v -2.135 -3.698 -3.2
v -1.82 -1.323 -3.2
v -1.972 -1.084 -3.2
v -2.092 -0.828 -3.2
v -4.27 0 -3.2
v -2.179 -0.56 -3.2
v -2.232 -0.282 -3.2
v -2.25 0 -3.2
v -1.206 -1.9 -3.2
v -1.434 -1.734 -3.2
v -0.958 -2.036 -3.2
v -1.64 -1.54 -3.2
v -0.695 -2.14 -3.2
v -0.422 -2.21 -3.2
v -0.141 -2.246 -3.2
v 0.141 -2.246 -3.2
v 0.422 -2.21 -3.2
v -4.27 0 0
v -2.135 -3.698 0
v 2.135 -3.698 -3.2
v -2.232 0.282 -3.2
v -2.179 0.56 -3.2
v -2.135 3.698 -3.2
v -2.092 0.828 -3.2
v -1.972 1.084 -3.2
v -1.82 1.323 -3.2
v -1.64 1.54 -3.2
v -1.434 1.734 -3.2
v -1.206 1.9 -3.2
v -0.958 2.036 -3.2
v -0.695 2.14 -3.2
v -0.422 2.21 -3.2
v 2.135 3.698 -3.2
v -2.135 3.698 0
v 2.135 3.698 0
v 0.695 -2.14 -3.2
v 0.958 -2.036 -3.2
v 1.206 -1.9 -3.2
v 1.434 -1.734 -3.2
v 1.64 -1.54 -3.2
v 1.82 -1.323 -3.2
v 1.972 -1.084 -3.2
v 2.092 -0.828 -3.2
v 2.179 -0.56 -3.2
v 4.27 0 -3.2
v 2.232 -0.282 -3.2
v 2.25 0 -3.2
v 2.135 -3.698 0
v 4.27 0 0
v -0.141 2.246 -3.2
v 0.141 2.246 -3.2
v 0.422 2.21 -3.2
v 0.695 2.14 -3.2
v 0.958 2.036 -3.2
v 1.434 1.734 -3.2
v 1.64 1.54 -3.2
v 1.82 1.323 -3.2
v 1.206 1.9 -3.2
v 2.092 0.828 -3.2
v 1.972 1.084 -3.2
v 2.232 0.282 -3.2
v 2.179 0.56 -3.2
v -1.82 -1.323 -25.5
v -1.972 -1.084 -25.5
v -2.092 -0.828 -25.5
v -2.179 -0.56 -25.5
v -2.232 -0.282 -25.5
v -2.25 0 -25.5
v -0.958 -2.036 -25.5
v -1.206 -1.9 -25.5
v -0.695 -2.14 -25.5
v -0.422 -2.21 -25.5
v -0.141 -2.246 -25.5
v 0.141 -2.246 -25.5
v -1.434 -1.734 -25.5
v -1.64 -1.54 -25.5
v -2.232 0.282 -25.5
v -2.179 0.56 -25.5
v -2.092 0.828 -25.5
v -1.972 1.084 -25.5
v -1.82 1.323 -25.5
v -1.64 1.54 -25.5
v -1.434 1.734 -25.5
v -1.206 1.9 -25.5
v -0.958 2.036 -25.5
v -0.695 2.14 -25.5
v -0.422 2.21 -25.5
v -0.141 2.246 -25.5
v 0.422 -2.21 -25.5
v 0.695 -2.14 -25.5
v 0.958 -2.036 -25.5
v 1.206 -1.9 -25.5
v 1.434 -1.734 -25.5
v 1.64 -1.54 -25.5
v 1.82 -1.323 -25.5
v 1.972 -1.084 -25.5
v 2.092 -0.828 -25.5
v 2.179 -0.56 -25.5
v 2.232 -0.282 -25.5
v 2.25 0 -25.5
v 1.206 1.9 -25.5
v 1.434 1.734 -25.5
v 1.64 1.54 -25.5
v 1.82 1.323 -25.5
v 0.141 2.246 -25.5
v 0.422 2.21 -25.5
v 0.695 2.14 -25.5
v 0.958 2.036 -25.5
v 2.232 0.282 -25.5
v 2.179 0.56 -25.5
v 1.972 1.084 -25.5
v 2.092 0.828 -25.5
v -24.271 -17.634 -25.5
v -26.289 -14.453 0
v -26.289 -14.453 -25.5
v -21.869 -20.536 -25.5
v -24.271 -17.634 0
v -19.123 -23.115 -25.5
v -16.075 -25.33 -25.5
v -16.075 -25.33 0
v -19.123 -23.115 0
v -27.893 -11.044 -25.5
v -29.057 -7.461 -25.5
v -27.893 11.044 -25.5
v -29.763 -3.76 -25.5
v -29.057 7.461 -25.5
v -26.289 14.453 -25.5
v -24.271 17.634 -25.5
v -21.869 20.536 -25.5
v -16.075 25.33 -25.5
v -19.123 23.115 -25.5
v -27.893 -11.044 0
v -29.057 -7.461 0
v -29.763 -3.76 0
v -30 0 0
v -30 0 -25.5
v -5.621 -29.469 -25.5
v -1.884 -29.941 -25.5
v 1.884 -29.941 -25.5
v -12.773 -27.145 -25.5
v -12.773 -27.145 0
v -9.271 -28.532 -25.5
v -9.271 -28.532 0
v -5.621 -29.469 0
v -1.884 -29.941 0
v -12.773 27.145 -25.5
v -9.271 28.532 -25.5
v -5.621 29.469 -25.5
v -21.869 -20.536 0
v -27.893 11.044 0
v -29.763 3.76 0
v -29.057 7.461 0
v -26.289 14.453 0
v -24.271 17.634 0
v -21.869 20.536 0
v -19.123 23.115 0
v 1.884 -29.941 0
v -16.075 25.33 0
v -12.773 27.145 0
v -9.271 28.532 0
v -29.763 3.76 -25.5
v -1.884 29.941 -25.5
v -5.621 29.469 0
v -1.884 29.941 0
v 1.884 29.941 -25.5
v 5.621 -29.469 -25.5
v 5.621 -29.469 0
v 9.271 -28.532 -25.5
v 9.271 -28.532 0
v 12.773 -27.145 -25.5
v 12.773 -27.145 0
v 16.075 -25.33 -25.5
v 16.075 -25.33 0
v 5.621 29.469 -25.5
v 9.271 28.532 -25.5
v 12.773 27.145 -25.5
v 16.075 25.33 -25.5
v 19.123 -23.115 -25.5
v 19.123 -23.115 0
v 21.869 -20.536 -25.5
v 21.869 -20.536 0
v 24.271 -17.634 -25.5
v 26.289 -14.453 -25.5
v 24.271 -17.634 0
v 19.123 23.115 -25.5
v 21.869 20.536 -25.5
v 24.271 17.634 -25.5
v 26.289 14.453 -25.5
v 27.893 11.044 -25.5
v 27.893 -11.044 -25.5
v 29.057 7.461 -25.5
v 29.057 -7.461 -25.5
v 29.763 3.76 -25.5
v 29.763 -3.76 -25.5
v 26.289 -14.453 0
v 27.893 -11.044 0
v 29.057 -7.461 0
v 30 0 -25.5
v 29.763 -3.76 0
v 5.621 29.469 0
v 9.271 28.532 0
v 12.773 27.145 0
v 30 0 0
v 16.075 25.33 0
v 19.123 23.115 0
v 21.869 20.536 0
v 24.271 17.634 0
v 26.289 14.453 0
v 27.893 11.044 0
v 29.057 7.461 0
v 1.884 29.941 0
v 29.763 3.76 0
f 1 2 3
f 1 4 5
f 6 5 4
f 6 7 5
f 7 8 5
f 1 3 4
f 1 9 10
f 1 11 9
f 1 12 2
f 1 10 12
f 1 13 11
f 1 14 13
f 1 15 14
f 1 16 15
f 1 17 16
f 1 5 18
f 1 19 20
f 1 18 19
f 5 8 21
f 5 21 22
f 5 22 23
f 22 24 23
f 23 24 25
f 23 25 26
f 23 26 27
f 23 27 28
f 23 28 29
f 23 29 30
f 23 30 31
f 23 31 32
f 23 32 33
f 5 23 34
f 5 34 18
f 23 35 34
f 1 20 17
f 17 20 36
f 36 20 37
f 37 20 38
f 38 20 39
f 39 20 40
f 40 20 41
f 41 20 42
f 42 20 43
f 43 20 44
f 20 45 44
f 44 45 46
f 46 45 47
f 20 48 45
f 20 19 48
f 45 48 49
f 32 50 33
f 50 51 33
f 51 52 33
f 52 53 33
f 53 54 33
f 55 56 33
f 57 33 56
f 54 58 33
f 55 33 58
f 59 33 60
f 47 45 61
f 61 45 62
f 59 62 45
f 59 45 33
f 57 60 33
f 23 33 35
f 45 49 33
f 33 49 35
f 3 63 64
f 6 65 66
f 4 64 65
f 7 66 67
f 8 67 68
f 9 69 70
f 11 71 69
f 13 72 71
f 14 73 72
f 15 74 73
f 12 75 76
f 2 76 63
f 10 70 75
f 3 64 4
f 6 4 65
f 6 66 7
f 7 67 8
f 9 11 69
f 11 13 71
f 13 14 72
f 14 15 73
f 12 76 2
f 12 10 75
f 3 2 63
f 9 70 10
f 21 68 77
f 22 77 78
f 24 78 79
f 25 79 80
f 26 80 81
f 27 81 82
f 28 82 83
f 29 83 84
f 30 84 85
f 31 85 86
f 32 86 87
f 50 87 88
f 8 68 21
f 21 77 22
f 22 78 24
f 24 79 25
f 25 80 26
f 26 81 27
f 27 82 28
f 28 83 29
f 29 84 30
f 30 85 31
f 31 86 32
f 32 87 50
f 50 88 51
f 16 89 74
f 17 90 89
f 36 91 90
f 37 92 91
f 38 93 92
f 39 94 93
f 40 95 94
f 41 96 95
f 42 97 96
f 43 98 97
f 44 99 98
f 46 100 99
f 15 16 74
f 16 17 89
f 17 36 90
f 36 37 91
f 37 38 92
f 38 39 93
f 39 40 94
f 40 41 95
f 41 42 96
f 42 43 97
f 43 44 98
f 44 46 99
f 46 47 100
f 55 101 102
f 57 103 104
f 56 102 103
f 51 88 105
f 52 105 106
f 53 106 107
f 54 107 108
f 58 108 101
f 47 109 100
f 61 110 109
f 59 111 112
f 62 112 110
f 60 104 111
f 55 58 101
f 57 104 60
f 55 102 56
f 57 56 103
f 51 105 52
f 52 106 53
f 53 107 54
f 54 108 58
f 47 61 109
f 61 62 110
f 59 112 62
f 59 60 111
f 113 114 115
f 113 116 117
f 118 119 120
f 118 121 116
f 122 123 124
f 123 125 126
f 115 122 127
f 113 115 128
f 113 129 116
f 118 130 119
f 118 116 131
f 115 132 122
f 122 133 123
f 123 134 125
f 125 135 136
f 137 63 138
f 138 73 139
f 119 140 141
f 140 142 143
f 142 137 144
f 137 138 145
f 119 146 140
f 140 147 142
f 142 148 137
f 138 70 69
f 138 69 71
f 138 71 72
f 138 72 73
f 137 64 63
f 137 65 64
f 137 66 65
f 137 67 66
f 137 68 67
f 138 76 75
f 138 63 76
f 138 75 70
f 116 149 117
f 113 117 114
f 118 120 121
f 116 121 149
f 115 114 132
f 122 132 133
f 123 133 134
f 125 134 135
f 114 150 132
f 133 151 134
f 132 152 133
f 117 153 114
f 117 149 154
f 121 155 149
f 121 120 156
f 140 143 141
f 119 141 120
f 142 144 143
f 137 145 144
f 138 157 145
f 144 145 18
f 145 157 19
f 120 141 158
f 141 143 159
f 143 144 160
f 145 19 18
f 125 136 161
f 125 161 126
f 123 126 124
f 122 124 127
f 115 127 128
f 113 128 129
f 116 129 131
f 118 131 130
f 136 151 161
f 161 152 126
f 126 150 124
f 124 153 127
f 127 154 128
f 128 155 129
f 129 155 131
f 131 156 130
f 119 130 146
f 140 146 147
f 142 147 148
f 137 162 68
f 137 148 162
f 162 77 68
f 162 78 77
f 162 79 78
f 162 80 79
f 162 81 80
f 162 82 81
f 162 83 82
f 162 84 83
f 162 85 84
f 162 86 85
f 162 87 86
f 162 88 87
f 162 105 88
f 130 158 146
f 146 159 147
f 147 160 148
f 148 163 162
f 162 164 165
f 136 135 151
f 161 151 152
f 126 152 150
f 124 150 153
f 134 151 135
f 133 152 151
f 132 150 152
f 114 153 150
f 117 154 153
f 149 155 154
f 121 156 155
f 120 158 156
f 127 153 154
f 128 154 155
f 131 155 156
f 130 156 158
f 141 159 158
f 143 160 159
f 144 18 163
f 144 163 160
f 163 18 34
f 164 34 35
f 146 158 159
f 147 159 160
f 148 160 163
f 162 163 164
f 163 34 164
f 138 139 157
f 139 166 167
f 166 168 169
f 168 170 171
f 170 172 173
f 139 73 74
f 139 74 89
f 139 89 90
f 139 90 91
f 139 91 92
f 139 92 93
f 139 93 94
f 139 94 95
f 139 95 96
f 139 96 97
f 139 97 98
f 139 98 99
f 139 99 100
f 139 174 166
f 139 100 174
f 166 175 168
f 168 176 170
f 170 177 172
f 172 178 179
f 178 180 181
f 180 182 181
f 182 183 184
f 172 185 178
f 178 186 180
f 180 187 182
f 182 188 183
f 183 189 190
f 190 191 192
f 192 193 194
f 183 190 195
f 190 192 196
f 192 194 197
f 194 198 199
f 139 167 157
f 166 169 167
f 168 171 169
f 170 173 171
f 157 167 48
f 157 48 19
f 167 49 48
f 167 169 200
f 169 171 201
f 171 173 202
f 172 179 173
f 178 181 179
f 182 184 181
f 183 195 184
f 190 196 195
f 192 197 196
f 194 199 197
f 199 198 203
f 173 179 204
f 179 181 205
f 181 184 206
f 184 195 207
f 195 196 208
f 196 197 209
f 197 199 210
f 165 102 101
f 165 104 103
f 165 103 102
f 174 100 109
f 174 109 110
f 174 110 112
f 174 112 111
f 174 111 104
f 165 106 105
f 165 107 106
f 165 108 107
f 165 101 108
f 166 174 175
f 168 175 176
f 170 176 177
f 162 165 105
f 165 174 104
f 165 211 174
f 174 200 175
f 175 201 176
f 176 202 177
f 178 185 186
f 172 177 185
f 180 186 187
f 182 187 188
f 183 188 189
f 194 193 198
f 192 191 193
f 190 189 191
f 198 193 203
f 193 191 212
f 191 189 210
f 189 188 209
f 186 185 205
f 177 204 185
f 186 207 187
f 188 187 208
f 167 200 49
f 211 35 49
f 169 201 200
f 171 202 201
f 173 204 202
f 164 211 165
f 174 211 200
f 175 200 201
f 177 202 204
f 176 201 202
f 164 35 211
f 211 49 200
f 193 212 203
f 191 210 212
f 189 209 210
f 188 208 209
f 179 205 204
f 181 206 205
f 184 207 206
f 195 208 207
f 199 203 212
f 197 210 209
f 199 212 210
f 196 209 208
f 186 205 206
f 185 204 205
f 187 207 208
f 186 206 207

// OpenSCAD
$fn = 50;


difference() {
	union() {
		translate(v = [0, 0, -25.5000000000]) {
			cylinder(h = 25.5000000000, r = 30.0000000000);
		}
	}
	union() {
		translate(v = [0, 0, 0]) {
			rotate(a = [0, 0, 0]) {
				difference() {
					union() {
						translate(v = [0, 0, -3.2000000000]) {
							linear_extrude(height = 3.2000000000) {
								polygon(points = [[4.2698000000, 0.0000000000], [2.1349000000, 3.6977552691], [-2.1349000000, 3.6977552691], [-4.2698000000, 0.0000000000], [-2.1349000000, -3.6977552691], [2.1349000000, -3.6977552691]]);
							}
						}
					}
					union();
				}
			}
		}
		#translate(v = [0, 0, -100.0000000000]) {
			cylinder(h = 200, r = 2.2500000000);
		}
	}
}
